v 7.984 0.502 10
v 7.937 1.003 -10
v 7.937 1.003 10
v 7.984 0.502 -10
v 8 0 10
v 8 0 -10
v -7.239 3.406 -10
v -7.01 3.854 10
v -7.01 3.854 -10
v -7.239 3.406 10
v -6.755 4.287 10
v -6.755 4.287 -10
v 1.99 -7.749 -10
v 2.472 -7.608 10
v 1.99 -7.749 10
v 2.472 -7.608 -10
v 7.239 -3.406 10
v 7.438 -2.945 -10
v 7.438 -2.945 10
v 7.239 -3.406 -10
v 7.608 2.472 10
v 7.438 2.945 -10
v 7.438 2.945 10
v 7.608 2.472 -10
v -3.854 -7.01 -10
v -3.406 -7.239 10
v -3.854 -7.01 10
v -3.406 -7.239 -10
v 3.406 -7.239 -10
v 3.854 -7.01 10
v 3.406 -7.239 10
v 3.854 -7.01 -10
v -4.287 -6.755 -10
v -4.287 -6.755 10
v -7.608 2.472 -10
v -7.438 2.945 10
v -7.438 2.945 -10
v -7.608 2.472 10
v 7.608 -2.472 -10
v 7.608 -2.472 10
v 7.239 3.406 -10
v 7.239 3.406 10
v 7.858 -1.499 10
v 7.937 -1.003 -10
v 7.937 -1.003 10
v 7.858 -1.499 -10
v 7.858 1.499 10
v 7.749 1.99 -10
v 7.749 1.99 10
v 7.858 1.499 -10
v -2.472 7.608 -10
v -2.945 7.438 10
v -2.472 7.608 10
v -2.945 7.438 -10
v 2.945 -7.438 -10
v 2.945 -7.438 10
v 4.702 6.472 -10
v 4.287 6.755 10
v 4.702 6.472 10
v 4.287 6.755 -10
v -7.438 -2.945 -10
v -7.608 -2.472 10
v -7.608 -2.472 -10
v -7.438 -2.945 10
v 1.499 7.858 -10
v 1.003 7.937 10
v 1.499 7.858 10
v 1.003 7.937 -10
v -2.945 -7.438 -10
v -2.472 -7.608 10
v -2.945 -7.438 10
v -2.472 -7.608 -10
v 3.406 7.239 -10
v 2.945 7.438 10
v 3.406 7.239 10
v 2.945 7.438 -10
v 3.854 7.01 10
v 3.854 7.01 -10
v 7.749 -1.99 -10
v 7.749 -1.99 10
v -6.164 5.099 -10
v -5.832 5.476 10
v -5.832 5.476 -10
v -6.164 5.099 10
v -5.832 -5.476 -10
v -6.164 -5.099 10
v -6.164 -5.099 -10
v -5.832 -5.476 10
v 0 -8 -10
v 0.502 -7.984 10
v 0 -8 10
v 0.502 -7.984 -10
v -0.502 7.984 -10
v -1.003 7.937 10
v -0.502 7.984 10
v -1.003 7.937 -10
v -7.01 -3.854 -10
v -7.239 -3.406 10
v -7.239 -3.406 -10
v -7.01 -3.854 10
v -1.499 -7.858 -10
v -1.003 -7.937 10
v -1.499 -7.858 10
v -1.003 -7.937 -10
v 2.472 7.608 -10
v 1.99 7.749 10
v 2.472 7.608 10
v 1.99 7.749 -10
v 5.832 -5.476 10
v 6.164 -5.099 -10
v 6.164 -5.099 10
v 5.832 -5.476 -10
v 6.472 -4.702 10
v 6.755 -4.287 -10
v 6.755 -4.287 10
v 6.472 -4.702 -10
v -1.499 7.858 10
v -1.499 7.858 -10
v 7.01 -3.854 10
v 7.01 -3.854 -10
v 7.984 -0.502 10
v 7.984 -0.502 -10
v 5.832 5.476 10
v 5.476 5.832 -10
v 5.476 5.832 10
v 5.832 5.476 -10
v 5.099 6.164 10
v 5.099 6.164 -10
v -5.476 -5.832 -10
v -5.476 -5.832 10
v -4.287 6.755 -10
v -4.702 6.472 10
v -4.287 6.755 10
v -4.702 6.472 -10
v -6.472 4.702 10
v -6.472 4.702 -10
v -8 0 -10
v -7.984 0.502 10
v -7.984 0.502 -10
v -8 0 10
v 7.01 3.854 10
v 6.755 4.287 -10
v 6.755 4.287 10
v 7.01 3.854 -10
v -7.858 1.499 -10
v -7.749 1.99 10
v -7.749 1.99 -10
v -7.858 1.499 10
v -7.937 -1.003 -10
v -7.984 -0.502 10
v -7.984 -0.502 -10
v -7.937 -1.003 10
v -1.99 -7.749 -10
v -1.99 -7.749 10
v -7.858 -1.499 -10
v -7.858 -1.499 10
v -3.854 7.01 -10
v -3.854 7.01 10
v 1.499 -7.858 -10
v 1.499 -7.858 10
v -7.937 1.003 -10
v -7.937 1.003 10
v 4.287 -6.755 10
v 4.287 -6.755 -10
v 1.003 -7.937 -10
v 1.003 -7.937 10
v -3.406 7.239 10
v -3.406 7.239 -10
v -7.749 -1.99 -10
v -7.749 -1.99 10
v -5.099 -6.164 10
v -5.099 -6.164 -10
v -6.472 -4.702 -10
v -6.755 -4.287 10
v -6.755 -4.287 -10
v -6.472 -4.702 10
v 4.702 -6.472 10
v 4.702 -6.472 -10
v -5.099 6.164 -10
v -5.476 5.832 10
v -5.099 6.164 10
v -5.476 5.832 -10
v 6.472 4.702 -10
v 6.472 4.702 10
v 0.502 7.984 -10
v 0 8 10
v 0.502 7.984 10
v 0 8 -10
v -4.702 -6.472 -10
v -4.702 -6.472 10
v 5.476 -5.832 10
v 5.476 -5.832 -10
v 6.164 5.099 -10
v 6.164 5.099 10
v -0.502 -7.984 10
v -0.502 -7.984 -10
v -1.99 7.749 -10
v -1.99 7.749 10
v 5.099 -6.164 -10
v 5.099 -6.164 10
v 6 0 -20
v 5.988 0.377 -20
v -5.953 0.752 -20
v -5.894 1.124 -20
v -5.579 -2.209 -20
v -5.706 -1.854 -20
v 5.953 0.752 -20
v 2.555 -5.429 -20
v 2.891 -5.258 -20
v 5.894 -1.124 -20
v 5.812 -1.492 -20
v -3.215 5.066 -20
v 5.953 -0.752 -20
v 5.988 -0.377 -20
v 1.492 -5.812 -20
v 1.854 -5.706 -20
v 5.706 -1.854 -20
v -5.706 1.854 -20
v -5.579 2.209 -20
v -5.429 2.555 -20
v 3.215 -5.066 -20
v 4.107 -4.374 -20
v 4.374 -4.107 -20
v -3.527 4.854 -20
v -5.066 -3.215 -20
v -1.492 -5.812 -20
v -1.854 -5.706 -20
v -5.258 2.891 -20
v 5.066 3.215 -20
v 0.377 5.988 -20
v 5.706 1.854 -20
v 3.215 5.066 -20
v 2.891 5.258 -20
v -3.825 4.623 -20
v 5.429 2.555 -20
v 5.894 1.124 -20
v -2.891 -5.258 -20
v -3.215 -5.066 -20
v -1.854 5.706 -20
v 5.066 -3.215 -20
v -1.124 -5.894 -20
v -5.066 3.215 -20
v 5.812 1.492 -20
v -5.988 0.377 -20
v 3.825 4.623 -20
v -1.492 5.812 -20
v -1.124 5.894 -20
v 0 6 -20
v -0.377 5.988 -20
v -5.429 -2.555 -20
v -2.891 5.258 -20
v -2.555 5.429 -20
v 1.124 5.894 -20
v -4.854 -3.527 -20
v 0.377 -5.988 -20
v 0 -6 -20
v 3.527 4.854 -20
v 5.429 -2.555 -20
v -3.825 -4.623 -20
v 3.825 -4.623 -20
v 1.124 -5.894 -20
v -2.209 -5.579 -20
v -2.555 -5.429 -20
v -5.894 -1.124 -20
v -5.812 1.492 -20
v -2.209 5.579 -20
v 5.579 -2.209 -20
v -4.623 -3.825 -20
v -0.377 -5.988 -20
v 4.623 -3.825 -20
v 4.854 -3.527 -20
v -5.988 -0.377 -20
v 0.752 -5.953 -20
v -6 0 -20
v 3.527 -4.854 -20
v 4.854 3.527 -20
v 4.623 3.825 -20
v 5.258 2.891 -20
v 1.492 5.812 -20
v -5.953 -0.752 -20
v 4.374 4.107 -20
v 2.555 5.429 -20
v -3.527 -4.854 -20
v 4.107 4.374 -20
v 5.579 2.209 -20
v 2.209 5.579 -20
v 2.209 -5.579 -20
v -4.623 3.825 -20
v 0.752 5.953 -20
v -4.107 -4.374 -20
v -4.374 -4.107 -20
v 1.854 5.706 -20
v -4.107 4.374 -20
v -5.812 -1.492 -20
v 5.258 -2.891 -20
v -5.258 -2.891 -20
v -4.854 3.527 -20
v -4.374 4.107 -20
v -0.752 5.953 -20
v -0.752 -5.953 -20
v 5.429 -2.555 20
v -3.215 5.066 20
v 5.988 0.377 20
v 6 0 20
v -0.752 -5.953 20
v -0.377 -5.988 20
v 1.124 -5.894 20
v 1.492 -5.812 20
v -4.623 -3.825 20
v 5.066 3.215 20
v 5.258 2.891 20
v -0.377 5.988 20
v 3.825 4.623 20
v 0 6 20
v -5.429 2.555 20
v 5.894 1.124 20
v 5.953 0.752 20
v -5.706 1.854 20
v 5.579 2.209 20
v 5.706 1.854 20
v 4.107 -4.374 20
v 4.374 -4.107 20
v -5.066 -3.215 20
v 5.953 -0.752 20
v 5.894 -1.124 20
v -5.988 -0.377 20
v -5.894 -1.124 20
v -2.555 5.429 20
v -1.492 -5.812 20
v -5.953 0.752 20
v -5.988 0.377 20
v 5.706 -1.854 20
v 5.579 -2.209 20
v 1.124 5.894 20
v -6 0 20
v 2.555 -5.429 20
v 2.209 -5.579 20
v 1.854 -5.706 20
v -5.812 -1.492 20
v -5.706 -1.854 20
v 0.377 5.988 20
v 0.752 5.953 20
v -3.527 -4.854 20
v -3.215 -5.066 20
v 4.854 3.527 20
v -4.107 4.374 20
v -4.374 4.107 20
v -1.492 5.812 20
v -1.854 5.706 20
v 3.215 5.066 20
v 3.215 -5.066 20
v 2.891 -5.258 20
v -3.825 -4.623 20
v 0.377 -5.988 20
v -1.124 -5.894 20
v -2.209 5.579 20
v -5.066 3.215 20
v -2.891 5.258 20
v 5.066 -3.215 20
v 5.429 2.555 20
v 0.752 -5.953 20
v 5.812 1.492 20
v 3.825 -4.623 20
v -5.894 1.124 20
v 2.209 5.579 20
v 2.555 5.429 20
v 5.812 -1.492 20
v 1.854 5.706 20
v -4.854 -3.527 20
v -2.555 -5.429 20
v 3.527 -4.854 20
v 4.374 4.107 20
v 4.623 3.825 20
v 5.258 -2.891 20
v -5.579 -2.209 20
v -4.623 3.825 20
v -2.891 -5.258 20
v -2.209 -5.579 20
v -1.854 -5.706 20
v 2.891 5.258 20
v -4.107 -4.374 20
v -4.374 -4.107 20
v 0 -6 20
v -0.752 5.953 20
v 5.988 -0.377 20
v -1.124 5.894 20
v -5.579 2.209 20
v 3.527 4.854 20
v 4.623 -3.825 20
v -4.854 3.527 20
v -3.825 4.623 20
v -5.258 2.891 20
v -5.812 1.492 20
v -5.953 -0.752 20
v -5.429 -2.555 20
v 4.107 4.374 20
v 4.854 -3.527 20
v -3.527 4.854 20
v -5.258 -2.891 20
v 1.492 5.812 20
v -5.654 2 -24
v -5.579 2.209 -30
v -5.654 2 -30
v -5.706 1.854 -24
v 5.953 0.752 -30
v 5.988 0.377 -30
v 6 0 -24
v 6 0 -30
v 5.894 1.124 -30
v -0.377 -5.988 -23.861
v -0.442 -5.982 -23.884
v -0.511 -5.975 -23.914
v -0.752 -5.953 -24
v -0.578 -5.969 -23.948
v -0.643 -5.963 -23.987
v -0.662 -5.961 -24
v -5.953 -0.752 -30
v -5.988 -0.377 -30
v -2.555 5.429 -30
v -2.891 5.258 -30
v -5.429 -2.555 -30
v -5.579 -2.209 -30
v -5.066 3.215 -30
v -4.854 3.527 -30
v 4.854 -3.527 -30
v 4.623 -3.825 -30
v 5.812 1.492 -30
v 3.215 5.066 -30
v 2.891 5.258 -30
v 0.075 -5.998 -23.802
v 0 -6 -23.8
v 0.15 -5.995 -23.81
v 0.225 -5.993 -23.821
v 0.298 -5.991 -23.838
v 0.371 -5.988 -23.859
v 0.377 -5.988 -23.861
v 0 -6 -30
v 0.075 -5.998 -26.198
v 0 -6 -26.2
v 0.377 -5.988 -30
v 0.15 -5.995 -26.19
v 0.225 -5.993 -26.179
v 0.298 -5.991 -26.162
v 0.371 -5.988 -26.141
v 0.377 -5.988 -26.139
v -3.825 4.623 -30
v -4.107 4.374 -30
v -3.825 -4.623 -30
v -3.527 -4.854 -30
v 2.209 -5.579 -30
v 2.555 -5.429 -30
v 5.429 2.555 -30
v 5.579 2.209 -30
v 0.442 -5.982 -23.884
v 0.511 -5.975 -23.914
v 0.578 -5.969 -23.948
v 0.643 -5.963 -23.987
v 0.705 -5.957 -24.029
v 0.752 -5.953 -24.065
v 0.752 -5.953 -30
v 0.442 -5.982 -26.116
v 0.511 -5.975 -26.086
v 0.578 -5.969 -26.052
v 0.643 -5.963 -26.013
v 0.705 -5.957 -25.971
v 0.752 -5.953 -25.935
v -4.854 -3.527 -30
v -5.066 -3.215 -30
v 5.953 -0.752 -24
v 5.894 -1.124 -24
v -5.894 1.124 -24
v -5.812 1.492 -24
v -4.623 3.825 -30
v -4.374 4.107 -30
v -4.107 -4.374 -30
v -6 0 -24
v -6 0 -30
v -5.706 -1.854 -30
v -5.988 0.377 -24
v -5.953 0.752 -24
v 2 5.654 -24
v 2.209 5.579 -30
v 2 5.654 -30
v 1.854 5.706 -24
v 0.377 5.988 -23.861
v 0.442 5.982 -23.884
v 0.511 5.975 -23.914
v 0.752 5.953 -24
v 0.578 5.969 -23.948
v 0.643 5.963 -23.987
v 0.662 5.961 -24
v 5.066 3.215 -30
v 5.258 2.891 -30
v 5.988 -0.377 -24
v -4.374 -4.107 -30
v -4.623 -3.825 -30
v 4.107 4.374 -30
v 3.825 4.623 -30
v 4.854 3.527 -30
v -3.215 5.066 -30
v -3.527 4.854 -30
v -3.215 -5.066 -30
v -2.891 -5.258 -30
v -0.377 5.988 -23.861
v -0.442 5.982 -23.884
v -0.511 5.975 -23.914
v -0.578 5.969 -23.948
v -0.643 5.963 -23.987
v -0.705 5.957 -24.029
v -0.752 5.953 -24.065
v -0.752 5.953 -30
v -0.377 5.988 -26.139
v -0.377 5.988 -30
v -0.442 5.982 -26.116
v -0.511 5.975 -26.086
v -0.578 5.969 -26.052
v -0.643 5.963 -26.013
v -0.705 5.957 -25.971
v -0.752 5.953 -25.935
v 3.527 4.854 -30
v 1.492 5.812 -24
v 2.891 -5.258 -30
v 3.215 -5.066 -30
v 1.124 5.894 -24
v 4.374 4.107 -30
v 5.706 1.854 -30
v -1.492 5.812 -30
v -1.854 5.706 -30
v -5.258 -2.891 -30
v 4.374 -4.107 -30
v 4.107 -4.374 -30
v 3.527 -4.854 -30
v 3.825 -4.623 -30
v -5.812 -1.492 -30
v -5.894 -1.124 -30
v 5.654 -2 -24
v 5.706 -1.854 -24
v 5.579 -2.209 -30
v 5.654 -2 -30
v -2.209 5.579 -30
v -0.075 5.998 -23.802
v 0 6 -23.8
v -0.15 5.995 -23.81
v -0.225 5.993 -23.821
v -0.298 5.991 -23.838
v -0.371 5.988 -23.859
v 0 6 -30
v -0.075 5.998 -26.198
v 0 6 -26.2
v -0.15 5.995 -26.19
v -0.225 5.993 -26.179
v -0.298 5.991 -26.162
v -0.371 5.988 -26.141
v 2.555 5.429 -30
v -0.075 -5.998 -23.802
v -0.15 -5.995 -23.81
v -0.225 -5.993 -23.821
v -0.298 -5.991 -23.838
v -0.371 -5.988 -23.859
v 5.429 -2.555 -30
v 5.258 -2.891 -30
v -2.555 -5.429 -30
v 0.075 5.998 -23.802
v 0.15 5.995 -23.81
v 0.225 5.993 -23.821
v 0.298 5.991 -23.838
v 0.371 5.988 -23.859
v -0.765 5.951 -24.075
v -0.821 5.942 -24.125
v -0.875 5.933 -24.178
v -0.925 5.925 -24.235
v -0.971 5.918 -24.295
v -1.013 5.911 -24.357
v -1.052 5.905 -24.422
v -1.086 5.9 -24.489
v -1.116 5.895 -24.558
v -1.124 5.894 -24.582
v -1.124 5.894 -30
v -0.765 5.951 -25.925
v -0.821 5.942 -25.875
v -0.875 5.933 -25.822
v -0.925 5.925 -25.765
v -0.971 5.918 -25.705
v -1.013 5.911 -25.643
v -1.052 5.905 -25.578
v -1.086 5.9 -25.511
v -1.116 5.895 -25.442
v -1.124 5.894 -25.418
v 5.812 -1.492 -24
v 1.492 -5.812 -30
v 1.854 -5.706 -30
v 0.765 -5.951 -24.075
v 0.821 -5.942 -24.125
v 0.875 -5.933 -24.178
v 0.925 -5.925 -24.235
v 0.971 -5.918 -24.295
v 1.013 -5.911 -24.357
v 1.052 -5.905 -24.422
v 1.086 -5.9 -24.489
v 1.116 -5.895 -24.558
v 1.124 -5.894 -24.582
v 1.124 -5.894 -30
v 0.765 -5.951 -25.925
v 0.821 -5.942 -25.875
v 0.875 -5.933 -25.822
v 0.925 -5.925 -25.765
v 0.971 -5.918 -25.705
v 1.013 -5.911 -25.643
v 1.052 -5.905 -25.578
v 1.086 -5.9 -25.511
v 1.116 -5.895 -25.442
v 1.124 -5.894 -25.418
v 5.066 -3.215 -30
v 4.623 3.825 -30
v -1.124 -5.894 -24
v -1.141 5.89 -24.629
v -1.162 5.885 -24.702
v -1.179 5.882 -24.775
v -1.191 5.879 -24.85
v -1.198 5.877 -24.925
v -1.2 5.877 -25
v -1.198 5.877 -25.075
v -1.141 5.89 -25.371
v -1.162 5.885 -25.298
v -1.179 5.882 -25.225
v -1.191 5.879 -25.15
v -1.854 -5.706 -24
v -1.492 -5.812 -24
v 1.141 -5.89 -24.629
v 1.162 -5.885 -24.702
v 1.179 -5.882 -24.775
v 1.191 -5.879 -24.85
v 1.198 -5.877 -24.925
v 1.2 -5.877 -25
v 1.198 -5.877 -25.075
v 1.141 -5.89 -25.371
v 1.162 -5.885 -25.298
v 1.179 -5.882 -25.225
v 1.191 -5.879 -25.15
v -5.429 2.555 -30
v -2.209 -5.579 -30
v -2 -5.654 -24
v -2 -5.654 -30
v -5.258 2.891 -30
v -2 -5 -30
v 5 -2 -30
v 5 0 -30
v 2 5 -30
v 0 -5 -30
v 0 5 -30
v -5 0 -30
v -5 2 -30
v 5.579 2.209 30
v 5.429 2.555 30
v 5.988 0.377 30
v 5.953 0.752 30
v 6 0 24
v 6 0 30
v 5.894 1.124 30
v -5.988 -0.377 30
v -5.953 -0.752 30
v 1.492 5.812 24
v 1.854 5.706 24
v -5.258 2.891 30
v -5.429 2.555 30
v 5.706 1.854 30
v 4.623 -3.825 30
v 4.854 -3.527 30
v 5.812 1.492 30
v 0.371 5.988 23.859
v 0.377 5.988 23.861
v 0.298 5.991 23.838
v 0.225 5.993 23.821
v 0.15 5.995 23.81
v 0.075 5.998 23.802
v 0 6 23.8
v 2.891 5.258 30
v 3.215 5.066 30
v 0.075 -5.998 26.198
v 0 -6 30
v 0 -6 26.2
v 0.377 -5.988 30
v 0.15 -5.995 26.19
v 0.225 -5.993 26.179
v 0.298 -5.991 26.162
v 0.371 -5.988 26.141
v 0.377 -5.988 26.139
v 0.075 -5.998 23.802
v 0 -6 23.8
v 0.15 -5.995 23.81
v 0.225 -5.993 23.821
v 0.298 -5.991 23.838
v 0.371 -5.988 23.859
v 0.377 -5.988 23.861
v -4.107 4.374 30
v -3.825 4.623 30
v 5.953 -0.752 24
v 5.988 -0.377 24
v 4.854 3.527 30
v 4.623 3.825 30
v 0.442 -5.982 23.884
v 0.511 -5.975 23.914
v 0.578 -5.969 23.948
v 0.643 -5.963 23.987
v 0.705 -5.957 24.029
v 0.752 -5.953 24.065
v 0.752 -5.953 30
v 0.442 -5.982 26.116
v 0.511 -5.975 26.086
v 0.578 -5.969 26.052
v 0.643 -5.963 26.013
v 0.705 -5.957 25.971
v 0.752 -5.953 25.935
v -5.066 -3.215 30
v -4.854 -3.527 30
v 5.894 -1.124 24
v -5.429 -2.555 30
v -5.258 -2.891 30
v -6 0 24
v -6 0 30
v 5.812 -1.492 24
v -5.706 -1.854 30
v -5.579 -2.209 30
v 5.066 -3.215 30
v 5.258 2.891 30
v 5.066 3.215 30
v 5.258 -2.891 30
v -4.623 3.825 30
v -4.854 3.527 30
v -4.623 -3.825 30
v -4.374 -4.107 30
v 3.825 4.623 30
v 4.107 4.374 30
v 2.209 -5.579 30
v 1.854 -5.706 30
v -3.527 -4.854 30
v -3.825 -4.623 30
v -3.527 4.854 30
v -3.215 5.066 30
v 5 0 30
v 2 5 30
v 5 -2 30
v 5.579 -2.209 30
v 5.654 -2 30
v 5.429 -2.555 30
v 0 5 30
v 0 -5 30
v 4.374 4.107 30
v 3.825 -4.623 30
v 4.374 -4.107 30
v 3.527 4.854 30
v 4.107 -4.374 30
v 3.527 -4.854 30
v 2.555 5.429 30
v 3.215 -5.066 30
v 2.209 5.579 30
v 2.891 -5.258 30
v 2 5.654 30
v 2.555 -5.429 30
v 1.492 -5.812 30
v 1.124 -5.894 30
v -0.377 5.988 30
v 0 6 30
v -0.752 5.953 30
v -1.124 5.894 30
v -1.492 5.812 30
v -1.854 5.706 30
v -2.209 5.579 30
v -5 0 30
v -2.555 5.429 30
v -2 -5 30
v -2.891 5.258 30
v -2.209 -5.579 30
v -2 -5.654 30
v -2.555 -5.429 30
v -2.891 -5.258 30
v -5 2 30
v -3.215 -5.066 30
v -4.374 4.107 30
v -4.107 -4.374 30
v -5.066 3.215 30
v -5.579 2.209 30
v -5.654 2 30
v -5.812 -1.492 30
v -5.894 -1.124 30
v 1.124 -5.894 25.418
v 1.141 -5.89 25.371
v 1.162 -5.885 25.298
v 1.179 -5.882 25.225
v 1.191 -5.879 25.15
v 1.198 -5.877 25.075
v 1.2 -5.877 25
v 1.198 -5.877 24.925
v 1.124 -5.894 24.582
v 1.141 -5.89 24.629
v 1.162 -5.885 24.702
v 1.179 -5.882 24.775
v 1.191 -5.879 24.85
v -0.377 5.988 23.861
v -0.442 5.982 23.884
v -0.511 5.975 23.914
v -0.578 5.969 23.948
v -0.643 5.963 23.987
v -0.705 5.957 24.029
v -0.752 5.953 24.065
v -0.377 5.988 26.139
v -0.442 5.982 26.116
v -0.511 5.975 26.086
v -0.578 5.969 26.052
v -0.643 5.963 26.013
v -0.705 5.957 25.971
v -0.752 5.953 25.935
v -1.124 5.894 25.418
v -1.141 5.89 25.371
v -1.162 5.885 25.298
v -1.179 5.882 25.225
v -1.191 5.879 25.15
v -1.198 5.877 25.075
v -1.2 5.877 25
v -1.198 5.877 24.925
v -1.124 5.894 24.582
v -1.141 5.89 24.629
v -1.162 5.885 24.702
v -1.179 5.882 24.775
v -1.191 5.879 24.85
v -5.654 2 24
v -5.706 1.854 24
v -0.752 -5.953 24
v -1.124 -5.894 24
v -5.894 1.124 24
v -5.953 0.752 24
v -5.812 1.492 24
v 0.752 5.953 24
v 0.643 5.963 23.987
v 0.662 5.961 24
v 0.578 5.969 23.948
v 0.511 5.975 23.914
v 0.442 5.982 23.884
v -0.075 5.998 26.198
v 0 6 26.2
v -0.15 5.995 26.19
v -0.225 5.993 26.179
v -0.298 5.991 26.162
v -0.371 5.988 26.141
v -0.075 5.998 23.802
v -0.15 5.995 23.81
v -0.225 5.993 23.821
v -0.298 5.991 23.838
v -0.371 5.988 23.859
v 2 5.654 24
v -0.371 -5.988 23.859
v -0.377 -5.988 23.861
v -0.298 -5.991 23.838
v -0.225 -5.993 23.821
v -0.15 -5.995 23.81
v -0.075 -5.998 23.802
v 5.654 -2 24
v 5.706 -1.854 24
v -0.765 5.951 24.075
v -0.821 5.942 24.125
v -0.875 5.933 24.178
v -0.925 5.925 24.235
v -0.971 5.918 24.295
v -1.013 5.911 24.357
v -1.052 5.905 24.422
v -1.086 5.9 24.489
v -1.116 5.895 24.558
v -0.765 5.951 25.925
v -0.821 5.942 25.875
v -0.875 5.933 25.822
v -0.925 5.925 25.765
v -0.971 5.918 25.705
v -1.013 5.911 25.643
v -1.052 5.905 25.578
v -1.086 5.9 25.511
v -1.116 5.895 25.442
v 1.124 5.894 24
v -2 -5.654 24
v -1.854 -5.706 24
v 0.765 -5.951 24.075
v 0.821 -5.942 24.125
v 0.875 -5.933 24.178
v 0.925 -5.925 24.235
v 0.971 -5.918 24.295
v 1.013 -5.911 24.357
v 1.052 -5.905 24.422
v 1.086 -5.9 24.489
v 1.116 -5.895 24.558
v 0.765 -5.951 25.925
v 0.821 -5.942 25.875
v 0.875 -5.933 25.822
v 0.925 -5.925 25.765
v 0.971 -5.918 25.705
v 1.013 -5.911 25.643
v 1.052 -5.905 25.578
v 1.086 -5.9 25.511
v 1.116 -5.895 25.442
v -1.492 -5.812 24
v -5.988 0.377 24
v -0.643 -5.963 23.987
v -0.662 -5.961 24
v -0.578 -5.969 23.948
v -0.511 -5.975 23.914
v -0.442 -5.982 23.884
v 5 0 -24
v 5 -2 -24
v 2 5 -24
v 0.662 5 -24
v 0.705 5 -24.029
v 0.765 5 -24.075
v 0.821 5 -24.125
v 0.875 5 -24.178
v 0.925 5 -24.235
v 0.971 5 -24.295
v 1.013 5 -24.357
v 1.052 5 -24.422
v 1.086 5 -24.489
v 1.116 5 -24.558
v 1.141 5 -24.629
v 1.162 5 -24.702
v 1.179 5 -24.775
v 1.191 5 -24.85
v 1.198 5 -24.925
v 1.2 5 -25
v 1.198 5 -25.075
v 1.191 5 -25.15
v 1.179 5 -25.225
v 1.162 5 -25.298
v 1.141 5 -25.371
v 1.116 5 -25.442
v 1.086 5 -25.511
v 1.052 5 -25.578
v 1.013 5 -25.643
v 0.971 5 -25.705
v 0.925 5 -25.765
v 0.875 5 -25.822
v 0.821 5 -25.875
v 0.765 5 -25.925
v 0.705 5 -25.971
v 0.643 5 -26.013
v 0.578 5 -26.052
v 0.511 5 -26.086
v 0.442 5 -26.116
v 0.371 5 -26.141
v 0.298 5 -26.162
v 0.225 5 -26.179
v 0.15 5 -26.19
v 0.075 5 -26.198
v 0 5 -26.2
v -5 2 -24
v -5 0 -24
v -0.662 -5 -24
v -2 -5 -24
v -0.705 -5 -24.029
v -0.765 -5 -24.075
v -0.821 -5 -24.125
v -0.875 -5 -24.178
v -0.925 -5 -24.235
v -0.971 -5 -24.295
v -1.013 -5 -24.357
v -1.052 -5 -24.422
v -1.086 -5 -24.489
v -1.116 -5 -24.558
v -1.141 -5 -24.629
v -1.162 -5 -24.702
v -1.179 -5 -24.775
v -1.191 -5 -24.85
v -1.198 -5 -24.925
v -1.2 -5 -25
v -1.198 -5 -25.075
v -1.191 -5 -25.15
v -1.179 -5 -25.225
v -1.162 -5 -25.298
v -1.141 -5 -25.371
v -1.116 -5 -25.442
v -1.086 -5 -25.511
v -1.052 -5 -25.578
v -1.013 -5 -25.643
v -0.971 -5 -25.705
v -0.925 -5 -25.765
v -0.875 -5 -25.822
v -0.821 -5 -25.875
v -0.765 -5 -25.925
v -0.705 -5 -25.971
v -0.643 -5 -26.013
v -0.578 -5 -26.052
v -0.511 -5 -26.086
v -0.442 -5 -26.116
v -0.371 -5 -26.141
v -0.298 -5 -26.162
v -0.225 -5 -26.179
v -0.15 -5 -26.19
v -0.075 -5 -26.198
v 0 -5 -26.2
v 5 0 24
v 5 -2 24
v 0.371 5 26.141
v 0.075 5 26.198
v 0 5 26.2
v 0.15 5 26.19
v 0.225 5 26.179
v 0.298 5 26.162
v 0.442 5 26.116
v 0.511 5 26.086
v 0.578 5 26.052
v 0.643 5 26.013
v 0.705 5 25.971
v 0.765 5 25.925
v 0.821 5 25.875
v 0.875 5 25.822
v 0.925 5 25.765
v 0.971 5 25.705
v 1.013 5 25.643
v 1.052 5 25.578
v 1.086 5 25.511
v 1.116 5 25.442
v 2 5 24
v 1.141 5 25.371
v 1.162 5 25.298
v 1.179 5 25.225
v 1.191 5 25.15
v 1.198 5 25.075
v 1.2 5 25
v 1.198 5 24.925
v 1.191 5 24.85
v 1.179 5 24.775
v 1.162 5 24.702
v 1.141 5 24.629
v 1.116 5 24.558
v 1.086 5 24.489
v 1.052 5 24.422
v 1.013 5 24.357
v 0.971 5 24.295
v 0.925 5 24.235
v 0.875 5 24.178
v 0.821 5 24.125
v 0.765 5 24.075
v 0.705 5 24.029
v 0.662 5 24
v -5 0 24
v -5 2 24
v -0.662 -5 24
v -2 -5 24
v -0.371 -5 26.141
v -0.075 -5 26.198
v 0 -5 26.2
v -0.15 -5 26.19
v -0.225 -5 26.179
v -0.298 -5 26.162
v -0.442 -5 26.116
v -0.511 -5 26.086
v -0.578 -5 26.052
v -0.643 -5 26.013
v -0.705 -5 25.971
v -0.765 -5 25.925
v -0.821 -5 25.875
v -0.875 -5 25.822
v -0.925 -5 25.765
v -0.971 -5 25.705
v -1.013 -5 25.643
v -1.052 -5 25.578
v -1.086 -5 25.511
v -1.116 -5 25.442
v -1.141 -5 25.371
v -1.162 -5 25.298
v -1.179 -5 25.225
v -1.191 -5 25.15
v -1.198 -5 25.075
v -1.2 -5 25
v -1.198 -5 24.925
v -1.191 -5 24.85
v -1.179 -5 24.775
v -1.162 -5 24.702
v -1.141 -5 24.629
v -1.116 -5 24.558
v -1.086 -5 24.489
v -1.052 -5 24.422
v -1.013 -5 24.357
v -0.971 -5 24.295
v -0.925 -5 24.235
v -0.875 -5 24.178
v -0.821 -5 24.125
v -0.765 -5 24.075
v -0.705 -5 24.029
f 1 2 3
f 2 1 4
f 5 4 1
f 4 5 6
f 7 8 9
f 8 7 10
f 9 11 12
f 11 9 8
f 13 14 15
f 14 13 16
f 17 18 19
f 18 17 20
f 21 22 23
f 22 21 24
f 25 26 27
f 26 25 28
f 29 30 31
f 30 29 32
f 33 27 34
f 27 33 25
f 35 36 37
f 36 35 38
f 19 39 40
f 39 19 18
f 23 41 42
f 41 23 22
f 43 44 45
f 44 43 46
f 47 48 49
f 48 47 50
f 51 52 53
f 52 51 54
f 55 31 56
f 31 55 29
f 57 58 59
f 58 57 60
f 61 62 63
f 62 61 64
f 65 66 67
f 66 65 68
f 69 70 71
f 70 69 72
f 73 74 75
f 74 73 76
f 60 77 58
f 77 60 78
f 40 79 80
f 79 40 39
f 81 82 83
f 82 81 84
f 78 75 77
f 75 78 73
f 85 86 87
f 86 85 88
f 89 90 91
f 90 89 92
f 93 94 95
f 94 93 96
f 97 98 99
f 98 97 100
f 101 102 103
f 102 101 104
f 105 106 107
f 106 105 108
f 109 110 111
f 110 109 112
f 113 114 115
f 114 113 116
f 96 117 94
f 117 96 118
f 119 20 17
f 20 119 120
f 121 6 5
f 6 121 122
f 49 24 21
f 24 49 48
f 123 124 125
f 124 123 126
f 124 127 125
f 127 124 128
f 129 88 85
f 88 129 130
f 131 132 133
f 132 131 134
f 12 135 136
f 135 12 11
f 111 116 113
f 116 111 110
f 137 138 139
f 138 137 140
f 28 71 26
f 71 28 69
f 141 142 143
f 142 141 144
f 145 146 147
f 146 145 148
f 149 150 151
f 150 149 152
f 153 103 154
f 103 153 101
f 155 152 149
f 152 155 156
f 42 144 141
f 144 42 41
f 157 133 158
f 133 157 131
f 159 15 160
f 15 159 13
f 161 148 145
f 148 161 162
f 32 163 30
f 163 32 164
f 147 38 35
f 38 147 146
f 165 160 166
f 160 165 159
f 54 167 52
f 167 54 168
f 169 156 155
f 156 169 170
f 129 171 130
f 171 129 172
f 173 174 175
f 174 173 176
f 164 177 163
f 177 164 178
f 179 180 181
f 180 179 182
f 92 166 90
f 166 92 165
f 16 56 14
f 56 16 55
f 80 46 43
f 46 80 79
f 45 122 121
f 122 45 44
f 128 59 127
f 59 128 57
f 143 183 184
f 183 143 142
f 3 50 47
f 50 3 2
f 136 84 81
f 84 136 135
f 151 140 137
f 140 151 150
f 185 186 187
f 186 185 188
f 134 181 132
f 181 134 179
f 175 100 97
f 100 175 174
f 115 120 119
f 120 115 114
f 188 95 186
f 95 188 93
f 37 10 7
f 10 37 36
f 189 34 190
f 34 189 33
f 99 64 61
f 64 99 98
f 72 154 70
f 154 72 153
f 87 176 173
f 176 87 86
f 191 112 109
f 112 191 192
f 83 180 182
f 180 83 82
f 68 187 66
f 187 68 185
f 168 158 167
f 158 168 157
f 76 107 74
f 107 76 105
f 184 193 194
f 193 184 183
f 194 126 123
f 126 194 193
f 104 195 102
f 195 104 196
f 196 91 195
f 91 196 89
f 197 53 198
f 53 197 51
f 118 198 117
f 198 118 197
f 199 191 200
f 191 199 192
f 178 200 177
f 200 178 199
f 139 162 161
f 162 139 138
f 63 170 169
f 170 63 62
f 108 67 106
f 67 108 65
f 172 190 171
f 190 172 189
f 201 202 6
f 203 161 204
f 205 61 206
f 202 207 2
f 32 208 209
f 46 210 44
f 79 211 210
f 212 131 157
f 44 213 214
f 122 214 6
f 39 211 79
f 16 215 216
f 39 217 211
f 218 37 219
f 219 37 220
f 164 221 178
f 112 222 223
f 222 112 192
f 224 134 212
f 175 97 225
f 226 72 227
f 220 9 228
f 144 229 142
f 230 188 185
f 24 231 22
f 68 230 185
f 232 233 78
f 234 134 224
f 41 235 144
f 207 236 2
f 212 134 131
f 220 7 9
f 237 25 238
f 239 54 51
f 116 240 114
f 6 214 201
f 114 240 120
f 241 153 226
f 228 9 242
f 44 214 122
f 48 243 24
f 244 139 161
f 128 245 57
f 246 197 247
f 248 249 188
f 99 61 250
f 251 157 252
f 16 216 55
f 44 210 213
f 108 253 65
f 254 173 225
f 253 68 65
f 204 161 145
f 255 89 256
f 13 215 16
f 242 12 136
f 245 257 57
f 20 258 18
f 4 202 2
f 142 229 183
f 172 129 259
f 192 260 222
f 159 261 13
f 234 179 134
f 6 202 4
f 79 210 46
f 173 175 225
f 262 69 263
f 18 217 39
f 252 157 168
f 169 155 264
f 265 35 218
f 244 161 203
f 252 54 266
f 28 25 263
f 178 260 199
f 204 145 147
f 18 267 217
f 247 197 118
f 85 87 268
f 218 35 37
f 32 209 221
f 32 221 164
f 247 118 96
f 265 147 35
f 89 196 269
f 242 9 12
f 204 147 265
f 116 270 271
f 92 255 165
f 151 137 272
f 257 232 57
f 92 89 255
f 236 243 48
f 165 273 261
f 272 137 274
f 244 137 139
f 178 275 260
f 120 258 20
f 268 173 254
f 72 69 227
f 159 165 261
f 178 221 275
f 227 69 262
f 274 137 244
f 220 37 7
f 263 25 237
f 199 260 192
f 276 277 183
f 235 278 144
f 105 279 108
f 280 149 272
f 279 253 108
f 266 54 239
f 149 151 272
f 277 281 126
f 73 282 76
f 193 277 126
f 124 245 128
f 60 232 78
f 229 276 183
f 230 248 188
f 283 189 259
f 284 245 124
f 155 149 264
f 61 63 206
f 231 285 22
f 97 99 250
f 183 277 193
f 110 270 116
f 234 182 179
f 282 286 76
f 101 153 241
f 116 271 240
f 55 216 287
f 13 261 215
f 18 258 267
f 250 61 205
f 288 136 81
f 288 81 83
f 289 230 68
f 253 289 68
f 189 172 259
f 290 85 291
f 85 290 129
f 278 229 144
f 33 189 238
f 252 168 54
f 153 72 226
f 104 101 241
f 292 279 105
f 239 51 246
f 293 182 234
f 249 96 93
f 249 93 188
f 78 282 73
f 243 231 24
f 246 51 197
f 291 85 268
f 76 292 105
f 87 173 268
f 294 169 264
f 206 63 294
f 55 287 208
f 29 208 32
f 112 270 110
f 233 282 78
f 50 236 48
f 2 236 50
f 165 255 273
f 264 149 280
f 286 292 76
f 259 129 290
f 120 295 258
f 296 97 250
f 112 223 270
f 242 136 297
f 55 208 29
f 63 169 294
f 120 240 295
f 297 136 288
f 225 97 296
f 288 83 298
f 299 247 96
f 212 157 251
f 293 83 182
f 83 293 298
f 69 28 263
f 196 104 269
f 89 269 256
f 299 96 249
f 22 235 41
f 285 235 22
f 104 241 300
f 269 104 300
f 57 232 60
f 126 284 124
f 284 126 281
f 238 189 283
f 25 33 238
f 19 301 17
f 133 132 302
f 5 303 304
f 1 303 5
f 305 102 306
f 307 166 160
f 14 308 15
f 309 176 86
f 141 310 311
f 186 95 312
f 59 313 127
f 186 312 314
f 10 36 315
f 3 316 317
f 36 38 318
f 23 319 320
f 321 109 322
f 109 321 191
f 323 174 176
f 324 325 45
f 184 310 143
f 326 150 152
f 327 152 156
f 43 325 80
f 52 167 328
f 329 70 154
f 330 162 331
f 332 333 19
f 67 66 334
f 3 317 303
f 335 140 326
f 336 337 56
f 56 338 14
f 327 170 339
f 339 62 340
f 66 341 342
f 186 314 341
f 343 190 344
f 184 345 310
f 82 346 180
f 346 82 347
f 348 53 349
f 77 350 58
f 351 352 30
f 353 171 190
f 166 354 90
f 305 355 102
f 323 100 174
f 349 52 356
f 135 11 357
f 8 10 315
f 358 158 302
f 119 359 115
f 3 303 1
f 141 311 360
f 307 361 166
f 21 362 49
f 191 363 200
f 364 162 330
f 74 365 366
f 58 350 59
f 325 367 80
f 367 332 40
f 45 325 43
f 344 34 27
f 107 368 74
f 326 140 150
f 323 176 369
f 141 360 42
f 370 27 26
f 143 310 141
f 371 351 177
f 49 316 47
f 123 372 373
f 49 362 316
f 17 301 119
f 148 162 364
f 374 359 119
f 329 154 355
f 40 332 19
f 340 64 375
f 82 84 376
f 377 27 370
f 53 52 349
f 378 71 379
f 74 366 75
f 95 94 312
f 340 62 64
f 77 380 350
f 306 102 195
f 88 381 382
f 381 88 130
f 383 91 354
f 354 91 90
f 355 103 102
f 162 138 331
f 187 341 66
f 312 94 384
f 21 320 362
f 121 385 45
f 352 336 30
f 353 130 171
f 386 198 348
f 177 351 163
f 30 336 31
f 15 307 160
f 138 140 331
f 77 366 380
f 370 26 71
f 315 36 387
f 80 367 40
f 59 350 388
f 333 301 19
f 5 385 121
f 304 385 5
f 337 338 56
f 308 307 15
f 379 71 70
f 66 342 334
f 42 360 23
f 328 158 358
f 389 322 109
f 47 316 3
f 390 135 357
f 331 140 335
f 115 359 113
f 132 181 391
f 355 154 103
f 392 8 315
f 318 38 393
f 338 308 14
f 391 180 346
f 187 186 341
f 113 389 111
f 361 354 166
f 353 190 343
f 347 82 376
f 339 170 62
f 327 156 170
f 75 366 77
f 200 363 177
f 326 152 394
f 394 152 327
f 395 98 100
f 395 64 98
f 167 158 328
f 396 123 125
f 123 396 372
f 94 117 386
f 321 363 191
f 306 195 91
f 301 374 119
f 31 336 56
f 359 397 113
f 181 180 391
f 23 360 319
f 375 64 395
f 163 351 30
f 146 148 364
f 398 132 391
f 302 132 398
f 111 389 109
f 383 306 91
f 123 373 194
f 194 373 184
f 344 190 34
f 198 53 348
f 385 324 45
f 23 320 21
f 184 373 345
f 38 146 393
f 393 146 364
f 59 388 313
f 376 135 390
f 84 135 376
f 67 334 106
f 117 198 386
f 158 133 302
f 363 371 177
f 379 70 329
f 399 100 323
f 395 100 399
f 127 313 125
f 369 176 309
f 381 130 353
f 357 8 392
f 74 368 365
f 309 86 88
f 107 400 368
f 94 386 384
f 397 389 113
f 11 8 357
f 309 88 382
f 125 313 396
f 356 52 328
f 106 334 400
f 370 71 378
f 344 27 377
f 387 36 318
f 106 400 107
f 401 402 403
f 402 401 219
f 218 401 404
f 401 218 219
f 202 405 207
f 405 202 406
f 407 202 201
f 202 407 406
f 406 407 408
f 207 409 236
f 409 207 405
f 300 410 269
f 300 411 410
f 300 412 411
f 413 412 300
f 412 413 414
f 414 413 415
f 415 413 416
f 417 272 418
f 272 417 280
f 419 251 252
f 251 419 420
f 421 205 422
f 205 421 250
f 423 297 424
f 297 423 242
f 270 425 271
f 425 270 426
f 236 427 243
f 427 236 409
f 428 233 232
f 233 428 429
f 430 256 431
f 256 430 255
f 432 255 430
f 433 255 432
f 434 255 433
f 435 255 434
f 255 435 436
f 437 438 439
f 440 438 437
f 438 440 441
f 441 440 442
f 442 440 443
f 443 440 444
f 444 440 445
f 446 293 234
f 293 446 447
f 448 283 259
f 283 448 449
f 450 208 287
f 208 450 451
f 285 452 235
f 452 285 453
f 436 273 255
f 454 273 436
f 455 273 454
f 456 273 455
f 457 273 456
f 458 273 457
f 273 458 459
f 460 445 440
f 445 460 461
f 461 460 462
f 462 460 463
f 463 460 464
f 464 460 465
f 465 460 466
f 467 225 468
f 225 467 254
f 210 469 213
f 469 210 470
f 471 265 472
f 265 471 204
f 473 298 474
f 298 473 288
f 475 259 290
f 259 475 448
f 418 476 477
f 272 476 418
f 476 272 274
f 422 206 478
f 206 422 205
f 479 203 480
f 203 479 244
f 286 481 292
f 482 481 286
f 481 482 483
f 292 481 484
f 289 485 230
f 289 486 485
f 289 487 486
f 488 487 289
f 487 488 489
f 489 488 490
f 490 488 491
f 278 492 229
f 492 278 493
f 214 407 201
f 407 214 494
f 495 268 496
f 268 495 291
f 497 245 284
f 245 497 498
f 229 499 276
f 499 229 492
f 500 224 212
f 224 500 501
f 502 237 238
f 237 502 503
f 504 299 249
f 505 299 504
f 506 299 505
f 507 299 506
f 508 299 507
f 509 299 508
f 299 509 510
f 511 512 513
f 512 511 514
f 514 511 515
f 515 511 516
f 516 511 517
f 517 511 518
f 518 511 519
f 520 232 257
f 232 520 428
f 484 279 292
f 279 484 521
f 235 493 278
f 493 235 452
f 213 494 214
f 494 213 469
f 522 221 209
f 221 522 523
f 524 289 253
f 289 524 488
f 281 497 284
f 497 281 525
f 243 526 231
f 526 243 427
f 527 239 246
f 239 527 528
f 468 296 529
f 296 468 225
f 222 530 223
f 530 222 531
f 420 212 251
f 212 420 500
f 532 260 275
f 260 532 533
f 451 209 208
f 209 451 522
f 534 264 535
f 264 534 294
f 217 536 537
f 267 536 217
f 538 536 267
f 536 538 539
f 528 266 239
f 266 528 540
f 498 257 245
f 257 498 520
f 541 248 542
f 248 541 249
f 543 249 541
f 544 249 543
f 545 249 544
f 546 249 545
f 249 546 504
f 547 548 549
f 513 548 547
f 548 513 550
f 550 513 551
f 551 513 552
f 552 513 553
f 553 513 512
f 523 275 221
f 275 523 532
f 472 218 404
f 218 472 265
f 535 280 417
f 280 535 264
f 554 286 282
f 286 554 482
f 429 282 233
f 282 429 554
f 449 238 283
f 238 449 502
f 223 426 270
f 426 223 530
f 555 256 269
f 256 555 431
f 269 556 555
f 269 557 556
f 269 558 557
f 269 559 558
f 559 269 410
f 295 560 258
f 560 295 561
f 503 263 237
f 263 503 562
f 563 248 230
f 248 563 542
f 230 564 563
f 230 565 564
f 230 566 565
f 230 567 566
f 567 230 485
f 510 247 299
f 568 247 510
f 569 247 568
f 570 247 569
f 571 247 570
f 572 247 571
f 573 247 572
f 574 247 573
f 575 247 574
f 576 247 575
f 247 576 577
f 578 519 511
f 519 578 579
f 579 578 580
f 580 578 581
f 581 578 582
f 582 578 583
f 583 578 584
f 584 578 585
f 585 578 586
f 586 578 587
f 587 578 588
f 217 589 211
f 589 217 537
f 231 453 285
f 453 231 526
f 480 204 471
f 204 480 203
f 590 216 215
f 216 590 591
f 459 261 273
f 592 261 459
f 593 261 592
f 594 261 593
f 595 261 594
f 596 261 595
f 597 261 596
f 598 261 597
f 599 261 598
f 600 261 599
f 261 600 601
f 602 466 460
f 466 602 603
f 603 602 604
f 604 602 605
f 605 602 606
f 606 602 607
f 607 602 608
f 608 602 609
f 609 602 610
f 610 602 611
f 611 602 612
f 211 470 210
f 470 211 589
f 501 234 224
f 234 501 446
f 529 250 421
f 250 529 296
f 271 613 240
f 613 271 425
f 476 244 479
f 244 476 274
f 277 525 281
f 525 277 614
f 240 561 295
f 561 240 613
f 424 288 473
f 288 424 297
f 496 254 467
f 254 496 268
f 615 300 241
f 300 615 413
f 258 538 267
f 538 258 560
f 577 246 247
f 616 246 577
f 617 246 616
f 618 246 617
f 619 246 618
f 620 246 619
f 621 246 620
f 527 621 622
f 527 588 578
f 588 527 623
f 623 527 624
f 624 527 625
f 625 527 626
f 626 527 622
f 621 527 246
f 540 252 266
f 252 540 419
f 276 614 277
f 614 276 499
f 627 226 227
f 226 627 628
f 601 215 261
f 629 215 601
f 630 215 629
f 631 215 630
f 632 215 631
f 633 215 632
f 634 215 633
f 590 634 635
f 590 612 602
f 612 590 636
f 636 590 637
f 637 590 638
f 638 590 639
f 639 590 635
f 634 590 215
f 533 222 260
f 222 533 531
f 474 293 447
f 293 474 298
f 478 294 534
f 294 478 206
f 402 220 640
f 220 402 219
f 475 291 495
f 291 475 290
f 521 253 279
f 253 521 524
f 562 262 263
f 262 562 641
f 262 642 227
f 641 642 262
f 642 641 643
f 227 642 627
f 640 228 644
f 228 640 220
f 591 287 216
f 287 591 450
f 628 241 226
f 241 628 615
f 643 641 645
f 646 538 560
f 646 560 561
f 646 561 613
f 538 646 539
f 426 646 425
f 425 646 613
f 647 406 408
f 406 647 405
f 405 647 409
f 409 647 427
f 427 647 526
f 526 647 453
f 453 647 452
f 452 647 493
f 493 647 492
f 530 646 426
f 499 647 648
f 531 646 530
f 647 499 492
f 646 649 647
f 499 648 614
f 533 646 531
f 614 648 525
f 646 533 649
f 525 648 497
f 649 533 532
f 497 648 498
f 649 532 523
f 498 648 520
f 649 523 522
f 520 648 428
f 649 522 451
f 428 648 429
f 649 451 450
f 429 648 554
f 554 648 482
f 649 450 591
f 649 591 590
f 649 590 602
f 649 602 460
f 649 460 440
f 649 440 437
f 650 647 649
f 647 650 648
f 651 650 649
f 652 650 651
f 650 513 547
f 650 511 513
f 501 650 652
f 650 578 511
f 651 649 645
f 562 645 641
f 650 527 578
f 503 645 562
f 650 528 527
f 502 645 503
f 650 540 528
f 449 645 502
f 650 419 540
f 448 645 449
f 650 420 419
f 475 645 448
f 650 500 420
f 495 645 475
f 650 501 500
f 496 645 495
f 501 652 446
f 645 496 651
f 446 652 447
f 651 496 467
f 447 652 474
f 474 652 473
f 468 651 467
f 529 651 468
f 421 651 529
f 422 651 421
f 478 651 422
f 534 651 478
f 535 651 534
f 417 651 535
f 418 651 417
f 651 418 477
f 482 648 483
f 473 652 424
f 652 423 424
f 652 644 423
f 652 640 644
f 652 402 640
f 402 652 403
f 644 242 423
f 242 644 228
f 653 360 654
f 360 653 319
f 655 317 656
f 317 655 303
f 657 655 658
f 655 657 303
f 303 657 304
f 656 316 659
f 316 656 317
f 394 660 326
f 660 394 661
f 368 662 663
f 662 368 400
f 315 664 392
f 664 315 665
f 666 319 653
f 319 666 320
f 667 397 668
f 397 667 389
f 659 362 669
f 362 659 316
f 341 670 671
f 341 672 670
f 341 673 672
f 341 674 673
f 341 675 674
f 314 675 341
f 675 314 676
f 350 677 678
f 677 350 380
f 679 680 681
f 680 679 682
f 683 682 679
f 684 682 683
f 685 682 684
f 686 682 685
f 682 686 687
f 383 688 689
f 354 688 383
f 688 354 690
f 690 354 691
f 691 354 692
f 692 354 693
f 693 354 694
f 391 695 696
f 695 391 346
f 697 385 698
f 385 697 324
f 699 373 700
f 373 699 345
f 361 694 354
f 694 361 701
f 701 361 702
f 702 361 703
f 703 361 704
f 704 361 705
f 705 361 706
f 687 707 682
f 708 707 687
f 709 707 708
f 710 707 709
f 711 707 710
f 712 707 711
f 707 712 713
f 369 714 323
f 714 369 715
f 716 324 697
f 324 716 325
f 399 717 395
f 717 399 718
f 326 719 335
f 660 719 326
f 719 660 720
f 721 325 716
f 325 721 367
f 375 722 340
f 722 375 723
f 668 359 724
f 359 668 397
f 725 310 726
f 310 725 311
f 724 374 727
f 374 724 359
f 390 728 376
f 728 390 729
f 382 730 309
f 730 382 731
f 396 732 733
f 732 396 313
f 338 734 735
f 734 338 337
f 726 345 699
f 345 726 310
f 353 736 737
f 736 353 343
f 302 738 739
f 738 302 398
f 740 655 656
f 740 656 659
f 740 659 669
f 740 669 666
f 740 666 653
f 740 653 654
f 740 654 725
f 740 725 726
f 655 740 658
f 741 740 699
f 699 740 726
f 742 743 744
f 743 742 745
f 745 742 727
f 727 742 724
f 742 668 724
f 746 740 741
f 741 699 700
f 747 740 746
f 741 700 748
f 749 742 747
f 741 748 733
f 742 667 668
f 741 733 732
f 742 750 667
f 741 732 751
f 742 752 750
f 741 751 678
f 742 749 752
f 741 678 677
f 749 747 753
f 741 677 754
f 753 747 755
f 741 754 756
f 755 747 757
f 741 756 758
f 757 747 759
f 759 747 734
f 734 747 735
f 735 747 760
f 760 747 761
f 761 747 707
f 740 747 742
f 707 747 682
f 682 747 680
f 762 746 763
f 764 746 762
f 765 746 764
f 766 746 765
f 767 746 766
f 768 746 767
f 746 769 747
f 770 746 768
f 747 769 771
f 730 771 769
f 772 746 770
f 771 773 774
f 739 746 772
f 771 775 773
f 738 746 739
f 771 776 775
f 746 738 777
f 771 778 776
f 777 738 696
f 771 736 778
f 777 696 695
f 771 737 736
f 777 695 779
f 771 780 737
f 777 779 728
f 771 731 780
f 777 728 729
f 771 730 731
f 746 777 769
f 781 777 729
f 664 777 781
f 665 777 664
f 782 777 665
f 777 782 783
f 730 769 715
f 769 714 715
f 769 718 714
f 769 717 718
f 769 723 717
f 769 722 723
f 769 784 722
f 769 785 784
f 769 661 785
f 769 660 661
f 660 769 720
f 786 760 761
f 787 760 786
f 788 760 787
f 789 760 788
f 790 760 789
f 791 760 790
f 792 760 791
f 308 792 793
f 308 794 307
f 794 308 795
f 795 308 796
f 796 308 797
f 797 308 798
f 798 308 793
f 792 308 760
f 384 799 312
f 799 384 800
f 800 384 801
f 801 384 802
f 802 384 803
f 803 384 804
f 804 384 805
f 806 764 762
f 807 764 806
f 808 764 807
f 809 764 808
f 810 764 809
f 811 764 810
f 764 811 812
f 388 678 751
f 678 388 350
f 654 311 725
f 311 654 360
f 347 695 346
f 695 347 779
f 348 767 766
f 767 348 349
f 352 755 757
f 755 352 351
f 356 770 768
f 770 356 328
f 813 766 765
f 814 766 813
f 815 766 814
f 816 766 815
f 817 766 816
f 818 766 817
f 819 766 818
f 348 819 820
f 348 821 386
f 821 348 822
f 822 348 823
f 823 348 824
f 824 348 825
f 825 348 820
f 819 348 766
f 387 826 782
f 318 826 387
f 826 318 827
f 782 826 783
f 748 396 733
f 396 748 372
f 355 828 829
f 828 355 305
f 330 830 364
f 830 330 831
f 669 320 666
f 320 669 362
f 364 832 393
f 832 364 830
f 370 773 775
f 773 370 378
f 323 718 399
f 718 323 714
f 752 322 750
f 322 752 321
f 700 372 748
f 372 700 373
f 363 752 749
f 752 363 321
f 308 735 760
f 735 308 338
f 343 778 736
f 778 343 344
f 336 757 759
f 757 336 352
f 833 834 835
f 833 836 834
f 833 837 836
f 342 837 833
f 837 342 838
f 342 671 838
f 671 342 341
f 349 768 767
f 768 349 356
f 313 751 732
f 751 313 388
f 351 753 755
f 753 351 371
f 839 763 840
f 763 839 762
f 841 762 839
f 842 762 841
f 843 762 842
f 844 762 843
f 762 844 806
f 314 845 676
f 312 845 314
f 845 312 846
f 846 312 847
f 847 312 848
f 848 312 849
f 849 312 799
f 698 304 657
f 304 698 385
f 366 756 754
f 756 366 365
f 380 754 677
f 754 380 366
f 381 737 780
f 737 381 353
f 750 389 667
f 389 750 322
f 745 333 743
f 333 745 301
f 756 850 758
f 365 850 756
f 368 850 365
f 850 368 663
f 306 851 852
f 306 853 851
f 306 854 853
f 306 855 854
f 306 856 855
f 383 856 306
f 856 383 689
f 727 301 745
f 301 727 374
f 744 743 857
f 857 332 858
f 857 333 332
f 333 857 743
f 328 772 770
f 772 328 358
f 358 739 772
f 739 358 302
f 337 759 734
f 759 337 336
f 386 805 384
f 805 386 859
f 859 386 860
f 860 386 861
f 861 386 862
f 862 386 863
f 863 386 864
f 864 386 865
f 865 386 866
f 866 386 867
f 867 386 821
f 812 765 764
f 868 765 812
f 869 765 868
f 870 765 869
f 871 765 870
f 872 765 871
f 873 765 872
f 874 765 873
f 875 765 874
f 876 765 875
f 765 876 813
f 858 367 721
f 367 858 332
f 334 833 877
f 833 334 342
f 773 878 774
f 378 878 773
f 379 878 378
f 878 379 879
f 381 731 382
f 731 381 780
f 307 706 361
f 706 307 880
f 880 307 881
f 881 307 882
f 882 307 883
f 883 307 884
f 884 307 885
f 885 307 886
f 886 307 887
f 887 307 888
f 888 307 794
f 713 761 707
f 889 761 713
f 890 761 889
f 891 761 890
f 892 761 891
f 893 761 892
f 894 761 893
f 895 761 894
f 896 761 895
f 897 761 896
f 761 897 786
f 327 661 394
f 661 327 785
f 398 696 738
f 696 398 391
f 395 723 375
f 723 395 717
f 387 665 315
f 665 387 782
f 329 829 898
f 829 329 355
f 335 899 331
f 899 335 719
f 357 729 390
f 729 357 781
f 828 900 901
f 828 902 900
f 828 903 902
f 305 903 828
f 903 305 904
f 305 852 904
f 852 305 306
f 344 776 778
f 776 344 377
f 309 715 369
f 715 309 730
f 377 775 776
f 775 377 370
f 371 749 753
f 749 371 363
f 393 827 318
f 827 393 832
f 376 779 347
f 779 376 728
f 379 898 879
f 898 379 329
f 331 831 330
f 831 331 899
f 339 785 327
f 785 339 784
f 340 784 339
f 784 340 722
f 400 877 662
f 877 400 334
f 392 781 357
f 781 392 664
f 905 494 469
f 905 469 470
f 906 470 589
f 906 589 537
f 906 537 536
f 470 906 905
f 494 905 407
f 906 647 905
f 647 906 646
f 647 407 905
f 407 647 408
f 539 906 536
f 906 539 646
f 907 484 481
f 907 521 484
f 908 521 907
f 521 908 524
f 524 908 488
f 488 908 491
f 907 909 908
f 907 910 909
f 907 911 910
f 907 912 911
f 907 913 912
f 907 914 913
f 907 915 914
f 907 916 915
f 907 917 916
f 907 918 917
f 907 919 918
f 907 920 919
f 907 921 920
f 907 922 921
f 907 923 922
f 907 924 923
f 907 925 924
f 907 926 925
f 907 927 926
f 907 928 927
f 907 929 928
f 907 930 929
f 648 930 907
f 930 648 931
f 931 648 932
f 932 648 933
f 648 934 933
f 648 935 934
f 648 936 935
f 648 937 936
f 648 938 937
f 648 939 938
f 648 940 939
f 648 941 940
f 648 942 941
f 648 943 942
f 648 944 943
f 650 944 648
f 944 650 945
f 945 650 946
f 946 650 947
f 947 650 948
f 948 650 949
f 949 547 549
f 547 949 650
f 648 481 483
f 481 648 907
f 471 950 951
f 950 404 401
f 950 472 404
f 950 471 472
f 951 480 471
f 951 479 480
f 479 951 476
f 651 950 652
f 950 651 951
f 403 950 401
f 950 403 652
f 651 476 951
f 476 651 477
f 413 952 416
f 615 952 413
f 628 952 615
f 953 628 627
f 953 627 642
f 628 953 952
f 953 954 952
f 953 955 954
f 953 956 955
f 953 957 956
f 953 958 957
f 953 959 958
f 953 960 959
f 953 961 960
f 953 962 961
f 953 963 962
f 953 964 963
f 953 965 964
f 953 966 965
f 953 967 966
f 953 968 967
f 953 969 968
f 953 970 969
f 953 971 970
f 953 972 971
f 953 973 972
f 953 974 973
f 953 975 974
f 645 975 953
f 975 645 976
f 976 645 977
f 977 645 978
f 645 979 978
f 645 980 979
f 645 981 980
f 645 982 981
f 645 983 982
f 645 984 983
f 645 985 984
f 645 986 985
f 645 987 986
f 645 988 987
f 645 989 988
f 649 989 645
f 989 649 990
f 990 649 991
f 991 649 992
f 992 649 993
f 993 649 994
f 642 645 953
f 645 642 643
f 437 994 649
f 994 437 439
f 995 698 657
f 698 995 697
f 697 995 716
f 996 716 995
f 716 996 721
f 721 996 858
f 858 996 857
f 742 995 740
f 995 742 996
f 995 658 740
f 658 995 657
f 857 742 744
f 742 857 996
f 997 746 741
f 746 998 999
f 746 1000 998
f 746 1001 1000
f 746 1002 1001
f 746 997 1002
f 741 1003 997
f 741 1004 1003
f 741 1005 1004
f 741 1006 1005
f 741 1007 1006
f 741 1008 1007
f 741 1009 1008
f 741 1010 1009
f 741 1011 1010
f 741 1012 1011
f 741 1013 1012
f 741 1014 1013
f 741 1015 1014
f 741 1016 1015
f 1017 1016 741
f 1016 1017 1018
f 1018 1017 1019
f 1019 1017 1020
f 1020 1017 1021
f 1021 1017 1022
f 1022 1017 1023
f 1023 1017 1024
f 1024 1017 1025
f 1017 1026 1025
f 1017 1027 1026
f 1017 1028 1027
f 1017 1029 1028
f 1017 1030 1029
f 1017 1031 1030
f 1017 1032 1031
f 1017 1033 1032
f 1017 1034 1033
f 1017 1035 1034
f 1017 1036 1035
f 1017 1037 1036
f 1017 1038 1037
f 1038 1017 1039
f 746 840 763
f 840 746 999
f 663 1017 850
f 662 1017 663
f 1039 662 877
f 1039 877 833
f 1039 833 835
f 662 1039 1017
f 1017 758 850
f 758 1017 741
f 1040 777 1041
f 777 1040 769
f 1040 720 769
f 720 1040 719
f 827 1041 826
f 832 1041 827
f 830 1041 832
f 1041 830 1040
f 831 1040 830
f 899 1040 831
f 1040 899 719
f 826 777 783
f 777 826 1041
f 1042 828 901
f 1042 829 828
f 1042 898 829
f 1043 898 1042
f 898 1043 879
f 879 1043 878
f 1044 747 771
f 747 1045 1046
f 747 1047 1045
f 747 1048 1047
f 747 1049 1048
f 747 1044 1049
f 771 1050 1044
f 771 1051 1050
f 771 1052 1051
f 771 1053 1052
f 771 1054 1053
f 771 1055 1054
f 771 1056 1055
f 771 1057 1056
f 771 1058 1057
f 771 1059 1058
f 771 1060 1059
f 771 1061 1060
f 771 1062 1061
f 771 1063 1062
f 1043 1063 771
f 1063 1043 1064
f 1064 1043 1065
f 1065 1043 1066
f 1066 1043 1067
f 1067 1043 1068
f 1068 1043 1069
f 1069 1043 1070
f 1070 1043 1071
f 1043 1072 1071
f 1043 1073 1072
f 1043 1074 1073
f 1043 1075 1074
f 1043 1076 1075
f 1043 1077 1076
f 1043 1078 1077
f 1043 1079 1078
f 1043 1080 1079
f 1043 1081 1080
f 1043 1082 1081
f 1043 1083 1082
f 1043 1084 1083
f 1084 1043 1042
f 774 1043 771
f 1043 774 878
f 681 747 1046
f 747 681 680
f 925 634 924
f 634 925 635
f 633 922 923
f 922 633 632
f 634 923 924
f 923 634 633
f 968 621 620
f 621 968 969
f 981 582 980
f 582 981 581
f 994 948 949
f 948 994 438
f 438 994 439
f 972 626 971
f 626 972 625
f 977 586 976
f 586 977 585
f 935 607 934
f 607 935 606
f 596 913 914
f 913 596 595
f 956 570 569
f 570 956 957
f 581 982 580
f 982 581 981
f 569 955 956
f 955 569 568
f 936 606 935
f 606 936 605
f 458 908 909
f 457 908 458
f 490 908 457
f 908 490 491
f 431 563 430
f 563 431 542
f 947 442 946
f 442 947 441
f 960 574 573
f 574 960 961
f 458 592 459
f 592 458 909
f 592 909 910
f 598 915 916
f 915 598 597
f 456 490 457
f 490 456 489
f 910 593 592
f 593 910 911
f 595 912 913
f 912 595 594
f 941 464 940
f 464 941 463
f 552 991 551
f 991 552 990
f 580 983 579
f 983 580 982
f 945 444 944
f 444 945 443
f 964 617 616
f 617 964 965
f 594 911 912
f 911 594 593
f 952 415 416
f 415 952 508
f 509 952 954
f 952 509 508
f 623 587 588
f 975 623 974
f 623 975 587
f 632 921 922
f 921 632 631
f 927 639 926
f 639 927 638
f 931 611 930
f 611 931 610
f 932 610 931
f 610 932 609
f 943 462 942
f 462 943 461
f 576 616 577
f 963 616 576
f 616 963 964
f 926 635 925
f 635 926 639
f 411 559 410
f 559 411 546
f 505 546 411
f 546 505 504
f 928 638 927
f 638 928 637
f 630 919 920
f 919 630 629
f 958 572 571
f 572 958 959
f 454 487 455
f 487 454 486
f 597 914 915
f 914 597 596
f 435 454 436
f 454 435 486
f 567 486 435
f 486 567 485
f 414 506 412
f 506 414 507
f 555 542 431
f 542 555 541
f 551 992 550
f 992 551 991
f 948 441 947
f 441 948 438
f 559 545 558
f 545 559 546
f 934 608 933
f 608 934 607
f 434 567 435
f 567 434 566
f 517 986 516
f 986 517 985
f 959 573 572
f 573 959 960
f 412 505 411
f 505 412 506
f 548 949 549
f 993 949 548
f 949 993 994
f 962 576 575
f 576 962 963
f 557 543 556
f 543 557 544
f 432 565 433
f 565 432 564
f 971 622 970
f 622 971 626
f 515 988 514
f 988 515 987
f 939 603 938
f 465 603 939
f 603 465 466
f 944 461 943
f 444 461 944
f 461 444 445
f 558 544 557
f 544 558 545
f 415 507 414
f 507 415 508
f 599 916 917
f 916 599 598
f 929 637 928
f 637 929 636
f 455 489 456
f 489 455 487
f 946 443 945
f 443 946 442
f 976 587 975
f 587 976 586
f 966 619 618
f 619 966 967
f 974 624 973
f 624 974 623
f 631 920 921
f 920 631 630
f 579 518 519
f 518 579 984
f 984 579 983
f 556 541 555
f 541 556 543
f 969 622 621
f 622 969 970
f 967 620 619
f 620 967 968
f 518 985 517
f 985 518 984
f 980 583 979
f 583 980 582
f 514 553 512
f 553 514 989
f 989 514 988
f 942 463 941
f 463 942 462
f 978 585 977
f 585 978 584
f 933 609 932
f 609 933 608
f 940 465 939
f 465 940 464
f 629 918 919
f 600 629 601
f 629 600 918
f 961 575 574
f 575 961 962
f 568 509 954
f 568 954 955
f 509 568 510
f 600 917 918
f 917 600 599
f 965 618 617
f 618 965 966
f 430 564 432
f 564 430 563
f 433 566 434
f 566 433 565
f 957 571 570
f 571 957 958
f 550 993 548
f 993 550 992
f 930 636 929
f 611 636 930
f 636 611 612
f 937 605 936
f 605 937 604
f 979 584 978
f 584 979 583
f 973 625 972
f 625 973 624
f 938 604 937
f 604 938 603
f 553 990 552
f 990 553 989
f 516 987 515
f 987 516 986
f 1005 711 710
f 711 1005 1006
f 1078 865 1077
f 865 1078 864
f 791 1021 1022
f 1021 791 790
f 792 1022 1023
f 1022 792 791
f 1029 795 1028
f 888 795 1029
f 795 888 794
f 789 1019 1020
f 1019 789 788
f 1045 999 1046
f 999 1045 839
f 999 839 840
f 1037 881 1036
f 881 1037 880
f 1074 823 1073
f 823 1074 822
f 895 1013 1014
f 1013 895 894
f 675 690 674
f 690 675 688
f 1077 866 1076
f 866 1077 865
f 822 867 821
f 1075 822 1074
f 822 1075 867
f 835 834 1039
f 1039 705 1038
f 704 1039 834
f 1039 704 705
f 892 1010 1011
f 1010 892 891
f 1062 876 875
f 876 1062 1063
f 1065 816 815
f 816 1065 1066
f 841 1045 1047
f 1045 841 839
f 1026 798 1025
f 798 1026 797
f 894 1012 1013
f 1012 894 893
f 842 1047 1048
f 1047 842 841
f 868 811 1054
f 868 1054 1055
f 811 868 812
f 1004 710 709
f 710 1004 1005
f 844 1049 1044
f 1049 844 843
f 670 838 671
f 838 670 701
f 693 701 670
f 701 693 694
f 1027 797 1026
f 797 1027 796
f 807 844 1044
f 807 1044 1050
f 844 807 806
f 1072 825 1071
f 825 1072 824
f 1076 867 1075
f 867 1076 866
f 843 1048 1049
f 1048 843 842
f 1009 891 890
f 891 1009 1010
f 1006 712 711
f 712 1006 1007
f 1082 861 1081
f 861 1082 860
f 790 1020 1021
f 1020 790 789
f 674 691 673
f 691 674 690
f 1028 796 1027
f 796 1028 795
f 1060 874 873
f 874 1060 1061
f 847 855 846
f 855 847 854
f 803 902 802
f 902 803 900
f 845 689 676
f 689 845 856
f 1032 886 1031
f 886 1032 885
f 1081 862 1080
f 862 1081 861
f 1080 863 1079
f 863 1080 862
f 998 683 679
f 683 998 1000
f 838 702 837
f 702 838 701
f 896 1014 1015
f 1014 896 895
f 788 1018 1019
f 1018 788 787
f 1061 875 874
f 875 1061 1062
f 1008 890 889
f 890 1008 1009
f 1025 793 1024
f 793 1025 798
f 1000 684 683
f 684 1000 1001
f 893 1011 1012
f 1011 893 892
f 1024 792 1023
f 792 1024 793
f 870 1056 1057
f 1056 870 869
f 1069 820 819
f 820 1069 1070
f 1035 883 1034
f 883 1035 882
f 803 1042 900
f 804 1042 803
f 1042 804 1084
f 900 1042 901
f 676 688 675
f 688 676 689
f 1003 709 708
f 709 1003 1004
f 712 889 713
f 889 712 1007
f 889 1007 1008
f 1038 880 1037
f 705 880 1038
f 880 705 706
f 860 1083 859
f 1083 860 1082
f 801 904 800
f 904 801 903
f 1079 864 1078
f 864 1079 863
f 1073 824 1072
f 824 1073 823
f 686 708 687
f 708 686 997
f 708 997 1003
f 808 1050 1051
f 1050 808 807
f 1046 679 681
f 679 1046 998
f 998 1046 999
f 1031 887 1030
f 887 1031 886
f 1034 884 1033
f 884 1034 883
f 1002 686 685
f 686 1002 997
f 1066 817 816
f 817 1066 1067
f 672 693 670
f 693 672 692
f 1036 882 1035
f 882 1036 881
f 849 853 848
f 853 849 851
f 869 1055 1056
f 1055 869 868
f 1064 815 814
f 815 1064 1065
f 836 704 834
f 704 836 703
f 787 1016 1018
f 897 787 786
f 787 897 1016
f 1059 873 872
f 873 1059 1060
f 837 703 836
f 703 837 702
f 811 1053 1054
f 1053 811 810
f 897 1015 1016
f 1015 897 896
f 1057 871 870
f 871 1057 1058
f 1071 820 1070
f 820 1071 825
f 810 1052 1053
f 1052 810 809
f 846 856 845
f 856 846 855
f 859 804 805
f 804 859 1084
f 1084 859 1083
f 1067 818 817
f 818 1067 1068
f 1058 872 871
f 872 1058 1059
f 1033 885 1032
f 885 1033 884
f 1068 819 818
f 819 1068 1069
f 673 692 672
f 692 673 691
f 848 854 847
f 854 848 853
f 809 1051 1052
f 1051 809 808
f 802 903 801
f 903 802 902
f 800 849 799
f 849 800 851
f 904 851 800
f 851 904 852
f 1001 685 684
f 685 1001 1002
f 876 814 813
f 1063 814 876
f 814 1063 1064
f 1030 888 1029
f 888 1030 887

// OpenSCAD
$fn = 100; // Smoothness

module shaft_component() {
    difference() {
        union() {
            // Central wider section
            cylinder(h = 20, r1 = 8, r2 = 8, center = true);

            // Tapered transition to narrower ends
            translate([0, 0, -20])
                cylinder(h = 10, r1 = 6, r2 = 8);
            translate([0, 0, 10])
                cylinder(h = 10, r1 = 8, r2 = 6);

            // Narrow end cylinders
            translate([0, 0, -30])
                cylinder(h = 10, r = 6);
            translate([0, 0, 20])
                cylinder(h = 10, r = 6);
        }

        // Grooves on both ends (4 grooves per end)
        for (z = [-27, 27]) {
            for (angle = [0, 90, 180, 270]) {
                rotate([0, 0, angle])
                translate([6, -1, z])
                    cube([2, 2, 6], center = true);
            }
        }

        // Holes near both ends
        for (z = [-25, 25]) {
            rotate([90, 0, 0])
            translate([0, z, 0])
                cylinder(h = 12, r = 1.2, center = true);
        }
    }
}

shaft_component();
